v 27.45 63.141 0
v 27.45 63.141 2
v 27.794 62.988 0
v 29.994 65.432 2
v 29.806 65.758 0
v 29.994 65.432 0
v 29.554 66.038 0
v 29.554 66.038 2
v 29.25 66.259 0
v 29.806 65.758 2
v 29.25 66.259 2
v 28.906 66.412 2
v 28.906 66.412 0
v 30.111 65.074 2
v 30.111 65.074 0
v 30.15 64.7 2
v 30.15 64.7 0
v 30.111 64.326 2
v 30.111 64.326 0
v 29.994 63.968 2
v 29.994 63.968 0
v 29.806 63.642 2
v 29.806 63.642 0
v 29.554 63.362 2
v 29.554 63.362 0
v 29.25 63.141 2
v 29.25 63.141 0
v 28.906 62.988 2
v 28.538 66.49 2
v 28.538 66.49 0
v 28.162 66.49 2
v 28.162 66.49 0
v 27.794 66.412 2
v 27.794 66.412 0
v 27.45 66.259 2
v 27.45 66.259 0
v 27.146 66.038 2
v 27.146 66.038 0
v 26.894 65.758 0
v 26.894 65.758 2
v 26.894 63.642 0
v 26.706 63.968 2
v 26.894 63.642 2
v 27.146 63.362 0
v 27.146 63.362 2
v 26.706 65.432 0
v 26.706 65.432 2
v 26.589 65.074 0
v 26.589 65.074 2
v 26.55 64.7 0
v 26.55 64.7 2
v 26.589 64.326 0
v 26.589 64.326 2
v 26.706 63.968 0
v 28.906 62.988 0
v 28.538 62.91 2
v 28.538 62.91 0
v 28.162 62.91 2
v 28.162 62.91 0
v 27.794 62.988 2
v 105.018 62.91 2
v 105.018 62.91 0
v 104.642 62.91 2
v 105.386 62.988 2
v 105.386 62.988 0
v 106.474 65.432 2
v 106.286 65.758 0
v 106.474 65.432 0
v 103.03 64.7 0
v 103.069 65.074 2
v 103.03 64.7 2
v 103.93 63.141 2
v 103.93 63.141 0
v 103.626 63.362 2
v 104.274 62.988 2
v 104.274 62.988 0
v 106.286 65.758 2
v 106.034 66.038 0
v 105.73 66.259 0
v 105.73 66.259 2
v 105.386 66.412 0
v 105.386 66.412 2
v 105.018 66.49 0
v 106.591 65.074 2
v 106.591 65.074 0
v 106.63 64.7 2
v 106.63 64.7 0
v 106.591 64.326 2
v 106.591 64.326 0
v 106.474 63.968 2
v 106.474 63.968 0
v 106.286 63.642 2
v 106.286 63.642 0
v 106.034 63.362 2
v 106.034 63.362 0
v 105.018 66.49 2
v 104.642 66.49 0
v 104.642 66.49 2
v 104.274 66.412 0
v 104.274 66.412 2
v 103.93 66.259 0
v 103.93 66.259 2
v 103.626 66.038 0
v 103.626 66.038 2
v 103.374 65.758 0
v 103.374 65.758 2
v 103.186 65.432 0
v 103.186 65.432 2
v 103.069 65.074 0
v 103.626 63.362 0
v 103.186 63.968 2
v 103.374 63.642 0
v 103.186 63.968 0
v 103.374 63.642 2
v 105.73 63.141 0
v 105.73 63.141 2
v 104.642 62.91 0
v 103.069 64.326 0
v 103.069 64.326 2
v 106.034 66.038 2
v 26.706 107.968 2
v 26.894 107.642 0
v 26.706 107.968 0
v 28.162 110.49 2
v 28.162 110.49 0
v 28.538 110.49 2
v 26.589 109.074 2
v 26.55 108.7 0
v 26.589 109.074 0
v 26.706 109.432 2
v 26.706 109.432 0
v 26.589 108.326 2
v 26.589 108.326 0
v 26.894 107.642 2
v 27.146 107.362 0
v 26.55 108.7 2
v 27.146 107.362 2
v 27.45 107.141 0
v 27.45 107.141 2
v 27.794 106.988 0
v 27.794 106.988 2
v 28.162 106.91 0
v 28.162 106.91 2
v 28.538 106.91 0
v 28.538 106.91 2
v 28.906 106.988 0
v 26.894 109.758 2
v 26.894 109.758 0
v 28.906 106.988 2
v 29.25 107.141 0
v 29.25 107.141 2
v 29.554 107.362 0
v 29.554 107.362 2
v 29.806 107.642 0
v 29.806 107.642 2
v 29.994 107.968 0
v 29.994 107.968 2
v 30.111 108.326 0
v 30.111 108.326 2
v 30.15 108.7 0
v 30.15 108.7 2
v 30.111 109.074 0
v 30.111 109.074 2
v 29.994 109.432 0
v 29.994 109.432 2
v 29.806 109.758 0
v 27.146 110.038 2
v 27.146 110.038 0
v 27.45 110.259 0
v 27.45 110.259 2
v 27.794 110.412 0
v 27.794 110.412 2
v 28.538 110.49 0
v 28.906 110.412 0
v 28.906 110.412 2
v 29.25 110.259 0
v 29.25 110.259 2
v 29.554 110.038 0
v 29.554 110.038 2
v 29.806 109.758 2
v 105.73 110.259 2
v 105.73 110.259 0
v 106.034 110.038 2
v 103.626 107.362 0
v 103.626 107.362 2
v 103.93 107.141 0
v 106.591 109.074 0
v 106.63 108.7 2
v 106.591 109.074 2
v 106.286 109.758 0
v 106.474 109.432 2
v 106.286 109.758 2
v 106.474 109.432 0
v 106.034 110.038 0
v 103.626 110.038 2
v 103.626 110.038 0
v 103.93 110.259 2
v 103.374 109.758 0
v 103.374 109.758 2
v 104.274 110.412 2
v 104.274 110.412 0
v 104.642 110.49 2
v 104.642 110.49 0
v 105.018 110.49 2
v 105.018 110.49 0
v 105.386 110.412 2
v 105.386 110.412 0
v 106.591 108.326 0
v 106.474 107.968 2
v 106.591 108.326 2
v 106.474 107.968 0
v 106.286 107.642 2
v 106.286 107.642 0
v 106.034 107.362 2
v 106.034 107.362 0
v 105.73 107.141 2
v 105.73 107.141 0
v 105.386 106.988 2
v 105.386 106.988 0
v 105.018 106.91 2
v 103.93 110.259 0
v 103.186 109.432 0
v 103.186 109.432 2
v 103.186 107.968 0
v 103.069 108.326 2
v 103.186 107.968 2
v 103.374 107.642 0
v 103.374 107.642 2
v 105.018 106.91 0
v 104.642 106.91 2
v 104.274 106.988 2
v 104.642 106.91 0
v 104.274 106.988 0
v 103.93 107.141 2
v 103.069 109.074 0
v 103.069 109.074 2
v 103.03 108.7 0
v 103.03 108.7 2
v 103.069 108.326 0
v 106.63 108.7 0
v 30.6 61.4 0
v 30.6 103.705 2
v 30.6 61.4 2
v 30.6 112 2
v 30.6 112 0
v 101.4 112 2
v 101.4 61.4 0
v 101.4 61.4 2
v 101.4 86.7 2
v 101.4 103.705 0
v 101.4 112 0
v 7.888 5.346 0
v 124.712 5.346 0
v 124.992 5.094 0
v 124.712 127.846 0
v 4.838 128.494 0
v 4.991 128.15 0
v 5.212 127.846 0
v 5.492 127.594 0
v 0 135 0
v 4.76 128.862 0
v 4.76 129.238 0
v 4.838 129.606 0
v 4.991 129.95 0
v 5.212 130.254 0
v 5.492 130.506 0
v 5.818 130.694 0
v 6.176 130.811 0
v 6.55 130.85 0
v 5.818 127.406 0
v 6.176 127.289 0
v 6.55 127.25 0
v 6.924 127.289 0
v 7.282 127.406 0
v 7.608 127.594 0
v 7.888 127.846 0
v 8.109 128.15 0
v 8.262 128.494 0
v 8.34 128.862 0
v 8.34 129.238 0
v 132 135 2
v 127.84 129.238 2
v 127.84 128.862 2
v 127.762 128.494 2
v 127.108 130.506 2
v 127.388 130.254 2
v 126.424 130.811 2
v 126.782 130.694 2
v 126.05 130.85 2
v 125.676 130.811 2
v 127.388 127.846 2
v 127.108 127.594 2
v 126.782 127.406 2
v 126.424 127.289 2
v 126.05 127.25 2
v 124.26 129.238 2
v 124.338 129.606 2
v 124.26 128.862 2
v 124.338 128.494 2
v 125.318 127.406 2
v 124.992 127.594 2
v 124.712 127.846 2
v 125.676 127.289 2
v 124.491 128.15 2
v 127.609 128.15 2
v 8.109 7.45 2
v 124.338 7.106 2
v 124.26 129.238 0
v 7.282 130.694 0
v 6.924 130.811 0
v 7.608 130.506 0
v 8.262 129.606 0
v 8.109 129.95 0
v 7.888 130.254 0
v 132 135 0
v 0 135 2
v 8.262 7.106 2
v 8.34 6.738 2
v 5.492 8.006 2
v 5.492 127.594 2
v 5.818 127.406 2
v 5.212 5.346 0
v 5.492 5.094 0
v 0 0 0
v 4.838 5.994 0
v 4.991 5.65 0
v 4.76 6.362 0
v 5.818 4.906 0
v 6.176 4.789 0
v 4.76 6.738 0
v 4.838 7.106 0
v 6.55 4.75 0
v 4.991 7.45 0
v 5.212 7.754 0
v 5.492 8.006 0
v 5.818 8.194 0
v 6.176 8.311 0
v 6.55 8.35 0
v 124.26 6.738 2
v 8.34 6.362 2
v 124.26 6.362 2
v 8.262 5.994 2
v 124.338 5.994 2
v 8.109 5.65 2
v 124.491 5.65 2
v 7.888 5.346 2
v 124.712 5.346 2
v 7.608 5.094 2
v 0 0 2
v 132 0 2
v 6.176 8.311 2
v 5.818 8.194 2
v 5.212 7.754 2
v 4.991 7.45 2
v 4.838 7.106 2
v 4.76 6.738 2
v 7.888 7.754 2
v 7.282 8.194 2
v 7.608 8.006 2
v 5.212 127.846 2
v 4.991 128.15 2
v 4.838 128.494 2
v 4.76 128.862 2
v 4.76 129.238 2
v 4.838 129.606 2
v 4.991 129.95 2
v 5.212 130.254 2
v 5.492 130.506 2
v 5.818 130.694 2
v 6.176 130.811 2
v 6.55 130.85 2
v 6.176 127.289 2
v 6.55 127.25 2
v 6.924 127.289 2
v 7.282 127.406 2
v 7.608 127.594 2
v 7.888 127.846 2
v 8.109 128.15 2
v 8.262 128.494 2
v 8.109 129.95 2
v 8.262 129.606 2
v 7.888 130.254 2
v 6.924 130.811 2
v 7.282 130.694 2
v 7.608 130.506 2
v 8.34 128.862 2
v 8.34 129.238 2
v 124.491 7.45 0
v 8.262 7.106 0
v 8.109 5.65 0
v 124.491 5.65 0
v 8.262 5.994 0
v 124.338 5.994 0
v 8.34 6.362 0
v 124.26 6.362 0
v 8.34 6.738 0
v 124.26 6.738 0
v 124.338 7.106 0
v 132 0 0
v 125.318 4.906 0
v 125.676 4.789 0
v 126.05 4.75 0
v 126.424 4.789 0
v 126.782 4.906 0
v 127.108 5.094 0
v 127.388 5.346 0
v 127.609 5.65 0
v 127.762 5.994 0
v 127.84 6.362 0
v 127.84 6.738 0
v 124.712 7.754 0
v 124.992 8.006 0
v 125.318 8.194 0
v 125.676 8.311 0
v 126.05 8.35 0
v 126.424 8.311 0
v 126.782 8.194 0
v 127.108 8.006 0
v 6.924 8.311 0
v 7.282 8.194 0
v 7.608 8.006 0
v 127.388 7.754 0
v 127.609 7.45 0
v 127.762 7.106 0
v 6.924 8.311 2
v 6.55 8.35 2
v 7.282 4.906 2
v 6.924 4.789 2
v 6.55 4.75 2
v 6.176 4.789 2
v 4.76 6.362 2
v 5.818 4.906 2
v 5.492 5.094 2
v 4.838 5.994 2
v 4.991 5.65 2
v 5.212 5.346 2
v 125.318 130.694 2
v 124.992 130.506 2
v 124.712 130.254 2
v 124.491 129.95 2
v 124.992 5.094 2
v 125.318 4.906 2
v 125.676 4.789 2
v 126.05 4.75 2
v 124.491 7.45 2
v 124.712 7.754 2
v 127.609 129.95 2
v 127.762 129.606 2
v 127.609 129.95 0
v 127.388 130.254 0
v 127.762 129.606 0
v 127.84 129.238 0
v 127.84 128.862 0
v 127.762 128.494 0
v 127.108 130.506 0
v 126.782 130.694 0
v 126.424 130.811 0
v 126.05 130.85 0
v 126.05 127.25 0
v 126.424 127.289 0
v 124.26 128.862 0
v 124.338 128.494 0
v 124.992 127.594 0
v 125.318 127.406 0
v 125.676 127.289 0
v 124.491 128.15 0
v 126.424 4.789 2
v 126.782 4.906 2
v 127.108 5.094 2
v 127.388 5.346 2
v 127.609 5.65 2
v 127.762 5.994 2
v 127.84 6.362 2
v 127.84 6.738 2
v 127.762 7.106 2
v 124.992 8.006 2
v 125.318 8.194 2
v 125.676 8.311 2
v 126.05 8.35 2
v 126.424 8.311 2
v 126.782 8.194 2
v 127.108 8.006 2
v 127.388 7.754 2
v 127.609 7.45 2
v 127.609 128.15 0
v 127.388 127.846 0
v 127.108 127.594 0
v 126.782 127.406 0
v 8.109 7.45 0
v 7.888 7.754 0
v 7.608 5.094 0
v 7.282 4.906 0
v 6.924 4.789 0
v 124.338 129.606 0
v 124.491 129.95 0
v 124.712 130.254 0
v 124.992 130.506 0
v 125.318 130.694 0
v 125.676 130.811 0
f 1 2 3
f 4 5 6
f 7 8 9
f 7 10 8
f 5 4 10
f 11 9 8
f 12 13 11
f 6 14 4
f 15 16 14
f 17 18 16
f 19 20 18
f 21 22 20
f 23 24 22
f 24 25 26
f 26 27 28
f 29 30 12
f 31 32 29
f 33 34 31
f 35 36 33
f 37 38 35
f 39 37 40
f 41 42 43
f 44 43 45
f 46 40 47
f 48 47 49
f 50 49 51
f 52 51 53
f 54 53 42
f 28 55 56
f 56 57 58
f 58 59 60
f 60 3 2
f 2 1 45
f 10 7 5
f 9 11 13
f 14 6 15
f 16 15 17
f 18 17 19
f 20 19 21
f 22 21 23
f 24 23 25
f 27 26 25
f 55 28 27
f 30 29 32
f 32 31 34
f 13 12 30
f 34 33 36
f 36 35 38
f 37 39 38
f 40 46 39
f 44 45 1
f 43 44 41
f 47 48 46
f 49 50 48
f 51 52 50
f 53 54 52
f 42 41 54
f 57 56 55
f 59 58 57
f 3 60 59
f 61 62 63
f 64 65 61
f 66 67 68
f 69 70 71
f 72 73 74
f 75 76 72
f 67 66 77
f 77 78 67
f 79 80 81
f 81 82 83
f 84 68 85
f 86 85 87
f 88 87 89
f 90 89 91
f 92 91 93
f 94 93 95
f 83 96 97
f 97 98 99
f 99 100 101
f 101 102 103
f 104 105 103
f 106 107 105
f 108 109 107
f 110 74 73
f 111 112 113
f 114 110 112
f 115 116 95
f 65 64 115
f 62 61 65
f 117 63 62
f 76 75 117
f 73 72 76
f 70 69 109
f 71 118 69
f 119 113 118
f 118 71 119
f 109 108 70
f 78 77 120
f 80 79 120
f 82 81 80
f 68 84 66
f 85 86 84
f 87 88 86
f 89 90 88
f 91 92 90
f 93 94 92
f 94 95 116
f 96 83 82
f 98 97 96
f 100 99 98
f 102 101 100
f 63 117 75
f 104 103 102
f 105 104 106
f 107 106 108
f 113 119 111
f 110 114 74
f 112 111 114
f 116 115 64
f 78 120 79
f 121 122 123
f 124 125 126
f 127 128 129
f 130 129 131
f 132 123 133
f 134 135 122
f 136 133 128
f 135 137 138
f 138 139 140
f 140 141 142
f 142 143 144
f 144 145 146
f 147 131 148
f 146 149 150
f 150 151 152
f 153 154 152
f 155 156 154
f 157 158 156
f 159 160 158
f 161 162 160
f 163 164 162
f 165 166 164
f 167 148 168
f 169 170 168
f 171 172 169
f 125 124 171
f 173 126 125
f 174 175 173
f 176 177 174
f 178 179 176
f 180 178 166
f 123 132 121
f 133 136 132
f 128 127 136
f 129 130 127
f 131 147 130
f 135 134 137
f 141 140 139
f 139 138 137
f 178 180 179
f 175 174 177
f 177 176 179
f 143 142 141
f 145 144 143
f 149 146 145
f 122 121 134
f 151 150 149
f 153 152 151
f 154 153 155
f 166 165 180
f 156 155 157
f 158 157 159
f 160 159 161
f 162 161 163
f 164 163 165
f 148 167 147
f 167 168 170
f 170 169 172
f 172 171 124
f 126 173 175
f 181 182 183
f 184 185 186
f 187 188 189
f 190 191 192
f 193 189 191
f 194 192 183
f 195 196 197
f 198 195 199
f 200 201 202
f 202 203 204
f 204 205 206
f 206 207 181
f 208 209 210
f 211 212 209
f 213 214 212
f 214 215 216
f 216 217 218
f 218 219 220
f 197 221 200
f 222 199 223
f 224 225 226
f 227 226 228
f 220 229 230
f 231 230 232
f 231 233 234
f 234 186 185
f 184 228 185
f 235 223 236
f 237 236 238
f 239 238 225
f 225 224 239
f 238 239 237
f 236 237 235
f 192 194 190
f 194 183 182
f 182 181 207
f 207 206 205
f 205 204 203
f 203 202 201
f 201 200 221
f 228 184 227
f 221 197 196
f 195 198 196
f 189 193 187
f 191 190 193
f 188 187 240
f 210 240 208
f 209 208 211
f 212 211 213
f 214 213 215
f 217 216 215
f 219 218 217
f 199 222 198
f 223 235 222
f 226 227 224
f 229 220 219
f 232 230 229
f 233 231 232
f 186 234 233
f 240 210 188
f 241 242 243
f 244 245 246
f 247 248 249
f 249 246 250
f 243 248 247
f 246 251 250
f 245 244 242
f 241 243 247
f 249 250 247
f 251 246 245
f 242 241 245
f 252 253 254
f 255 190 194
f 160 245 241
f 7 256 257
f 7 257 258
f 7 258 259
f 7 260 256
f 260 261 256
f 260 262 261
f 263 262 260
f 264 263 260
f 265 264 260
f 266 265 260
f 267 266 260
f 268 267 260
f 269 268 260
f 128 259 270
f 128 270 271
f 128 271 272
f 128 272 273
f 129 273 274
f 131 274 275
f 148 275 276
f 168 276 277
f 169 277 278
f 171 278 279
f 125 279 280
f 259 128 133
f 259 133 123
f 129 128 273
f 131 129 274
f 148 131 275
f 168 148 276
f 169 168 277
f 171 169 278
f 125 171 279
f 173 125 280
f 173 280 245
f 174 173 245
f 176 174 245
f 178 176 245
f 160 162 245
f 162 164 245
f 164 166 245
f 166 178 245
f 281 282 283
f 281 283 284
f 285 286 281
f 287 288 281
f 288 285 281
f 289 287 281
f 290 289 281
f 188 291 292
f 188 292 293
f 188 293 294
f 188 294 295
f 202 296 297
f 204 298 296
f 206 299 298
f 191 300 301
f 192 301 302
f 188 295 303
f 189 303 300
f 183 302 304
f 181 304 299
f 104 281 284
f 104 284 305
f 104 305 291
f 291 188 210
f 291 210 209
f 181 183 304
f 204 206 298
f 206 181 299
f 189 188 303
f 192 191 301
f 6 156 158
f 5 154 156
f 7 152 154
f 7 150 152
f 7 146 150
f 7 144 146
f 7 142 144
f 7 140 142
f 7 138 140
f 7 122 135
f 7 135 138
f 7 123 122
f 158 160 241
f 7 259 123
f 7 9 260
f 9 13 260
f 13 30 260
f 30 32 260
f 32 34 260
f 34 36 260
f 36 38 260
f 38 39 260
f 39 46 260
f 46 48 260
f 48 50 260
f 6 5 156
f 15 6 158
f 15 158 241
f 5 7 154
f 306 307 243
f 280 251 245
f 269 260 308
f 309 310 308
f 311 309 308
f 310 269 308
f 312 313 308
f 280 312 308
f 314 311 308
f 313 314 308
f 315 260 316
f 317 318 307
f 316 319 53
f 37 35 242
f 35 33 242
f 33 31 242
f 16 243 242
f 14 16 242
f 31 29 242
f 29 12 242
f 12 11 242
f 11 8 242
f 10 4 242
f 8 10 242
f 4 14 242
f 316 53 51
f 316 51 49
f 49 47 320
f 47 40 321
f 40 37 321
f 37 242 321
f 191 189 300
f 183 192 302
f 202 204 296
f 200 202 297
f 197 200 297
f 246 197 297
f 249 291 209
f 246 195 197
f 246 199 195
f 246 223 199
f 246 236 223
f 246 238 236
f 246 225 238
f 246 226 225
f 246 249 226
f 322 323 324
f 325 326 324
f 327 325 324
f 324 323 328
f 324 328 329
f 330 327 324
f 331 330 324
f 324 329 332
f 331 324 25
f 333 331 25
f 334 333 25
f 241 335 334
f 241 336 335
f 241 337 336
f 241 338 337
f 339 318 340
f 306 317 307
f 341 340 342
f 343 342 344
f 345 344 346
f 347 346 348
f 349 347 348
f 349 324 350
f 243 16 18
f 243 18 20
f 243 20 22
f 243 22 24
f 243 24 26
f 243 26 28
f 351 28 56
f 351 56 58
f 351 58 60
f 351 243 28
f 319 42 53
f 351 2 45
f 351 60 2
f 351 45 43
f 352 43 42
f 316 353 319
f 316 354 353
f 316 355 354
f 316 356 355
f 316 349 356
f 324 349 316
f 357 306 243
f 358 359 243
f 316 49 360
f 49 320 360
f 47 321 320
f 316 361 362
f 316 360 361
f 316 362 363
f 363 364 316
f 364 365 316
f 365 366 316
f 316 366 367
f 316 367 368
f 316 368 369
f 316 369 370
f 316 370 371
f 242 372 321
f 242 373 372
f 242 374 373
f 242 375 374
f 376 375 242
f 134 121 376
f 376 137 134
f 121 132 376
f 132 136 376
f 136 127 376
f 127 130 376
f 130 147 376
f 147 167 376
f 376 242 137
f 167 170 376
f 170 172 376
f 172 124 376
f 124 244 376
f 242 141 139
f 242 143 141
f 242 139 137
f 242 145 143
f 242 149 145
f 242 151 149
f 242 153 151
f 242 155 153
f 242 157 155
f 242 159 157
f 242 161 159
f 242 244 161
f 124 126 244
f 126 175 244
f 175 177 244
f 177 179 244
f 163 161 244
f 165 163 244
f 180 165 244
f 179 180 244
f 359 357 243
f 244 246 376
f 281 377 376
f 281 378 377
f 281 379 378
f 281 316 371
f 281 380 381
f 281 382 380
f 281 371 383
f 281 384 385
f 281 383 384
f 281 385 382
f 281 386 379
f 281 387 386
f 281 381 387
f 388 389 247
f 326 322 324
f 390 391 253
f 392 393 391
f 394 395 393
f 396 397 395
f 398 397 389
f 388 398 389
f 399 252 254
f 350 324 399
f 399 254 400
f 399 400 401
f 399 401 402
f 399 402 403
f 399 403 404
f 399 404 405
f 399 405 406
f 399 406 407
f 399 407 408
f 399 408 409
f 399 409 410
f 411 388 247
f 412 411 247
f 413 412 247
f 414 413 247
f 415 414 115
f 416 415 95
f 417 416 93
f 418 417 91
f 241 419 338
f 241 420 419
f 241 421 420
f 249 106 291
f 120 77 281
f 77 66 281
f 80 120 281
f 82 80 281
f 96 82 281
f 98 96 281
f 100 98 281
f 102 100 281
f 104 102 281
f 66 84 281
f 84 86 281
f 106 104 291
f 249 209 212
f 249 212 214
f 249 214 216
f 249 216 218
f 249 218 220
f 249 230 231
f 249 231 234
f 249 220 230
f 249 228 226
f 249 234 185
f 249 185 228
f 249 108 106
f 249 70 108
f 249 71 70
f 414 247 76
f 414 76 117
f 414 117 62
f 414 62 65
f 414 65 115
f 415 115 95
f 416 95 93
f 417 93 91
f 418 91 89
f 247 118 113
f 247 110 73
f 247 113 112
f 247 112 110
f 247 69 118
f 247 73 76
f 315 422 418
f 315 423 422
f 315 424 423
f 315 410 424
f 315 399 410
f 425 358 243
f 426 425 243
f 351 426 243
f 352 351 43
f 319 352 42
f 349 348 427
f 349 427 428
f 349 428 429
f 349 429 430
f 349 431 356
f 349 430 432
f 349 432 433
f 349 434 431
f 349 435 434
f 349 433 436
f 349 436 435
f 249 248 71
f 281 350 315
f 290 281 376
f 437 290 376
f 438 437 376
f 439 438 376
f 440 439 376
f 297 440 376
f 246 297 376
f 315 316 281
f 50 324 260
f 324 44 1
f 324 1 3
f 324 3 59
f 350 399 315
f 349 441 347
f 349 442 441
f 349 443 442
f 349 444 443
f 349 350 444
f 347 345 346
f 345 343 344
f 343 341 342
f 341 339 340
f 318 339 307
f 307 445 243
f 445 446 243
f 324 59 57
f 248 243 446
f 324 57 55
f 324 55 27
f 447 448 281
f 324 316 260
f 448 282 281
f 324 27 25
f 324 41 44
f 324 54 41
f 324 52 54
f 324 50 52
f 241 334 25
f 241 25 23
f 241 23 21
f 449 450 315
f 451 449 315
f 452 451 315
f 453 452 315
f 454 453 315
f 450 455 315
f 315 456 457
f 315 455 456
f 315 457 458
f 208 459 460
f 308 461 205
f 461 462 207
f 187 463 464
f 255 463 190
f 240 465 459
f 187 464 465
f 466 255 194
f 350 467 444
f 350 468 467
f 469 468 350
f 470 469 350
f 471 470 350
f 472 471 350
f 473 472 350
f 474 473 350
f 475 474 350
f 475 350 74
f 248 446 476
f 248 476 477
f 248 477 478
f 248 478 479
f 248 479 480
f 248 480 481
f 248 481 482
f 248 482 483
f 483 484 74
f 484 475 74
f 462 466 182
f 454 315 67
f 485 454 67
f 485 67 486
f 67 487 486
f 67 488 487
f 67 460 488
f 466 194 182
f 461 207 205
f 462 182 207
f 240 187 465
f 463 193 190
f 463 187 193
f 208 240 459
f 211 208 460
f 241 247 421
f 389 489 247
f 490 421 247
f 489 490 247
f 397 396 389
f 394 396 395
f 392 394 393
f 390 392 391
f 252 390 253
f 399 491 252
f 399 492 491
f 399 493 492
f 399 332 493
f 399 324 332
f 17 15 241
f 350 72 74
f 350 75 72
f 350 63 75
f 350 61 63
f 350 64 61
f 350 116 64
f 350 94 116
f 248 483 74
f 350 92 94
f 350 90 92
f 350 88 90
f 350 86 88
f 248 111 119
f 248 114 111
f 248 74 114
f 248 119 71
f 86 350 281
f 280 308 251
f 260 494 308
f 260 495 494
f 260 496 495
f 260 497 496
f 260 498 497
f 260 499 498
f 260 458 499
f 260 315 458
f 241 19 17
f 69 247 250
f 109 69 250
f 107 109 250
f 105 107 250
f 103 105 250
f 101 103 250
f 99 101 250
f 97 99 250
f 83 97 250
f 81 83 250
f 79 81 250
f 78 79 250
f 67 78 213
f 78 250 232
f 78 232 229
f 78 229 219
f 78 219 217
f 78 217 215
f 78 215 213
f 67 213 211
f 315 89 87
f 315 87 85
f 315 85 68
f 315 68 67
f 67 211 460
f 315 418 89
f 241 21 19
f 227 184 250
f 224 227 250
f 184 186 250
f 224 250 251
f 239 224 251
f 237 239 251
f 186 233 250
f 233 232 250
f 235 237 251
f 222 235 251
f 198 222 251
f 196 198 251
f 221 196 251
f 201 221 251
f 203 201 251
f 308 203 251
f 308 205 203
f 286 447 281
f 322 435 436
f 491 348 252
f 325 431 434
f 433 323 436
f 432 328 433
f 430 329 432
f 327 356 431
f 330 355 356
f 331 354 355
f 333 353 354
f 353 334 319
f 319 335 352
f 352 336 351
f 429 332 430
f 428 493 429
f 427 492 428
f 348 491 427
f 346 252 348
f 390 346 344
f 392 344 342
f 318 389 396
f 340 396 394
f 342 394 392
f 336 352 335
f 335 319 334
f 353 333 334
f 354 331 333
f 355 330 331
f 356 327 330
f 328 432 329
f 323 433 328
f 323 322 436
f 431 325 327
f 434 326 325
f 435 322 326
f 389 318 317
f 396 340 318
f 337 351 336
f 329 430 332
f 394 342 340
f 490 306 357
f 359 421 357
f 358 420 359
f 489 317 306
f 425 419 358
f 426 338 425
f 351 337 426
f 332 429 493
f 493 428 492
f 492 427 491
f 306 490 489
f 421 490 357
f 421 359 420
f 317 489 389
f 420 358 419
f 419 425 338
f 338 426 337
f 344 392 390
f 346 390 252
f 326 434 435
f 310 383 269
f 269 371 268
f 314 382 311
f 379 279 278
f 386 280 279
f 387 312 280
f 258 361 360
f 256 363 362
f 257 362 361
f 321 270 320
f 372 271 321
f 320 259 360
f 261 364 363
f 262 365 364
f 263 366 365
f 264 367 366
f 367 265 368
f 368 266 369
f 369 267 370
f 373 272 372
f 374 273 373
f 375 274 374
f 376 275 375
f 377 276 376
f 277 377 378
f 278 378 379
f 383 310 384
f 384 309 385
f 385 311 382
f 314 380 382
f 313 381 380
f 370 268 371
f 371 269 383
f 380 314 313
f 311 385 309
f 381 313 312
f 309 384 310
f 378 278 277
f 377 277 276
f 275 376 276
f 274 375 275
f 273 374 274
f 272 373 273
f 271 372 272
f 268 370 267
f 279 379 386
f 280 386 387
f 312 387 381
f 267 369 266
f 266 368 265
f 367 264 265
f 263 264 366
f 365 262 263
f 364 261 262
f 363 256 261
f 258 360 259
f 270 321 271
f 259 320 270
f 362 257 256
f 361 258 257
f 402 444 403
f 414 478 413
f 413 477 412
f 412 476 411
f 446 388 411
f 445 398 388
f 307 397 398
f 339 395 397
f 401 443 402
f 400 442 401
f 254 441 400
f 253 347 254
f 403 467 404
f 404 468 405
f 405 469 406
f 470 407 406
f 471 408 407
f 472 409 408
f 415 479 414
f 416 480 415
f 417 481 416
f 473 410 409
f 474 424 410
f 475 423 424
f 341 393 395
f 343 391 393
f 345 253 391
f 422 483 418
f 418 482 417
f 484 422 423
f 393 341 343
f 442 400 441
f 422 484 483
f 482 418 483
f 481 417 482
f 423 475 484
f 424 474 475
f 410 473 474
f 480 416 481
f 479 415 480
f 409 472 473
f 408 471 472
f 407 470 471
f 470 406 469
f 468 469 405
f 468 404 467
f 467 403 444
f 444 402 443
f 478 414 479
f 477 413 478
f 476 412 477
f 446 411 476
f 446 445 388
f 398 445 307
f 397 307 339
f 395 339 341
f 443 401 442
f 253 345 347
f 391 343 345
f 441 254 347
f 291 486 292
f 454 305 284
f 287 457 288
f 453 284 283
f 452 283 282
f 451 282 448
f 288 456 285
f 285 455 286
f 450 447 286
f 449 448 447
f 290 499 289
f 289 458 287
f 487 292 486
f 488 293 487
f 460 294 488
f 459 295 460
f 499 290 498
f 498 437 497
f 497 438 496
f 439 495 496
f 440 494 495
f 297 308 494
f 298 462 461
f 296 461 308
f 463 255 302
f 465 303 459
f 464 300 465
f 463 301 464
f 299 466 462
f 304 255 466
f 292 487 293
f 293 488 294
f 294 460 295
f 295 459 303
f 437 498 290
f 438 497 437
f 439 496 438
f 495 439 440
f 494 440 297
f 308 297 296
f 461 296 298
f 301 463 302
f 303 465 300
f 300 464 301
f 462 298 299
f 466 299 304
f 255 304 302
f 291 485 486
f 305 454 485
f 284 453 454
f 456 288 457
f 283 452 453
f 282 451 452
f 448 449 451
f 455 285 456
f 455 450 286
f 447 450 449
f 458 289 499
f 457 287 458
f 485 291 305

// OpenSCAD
wall_thickness = 2;
case_depth = 135;
case_width = 140-8;
case_height = 60;



// All holes/openings should be offset from hole 1, at 0,0
lcd_hole_1_x = 0;
lcd_hole_1_y = 0;

lcd_hole_2_x = 86-3-6.92+0.4; // Moving 0.4 right
lcd_hole_2_y = lcd_hole_1_y;

lcd_hole_3_x = lcd_hole_1_x;
lcd_hole_3_y = 50-3-3;

lcd_hole_4_x = lcd_hole_2_x;
lcd_hole_4_y = lcd_hole_3_y;

lcd_hole_radius = 1.8;

lcd_opening_x = 2.25;
lcd_opening_y = -3.3;
lcd_opening_x_length = 70.2 + 0.6;  // Moving 0.6 out
lcd_opening_y_length = 50.6;

offset_visual_x = -lcd_opening_x-lcd_opening_x_length/2+case_width/2;
offset_visual_y = case_depth/3*2-lcd_opening_y_length/2;


module lcd_holes() {
    translate([lcd_hole_1_x, lcd_hole_1_y, 0]) cylinder(h=wall_thickness*3, r=lcd_hole_radius, center=true, $fn=30);
    translate([lcd_hole_2_x, lcd_hole_2_y, 0]) cylinder(h=wall_thickness*3, r=lcd_hole_radius, center=true, $fn=30);
    translate([lcd_hole_3_x, lcd_hole_3_y, 0]) cylinder(h=wall_thickness*3, r=lcd_hole_radius, center=true, $fn=30);
    translate([lcd_hole_4_x, lcd_hole_4_y, 0]) cylinder(h=wall_thickness*3, r=lcd_hole_radius, center=true, $fn=30);
    translate([lcd_opening_x, lcd_opening_y, -1]) cube([lcd_opening_x_length, lcd_opening_y_length, wall_thickness*3]);
}


module captive_square_nut_post(post_top_at, attached_wall_thickness, rotation=0, holes_only=0) {
    nut_width = 5.5;
    nut_height = 2.5;

    nut_post_width = nut_width + 3.6;

    nut_hole_height = nut_height + 0.8;
    nut_hole_width = nut_width + 1;
    nut_hole_depth = (nut_post_width-nut_width)/2 + nut_width + 0.6;

    nut_hole_from_top_of_post = 2;

    screw_radius = 1.8;
    captive_screw_length = 12;


    nut_post_height = nut_hole_from_top_of_post*2 + nut_hole_height + (nut_post_width) + max(0, captive_screw_length - (nut_hole_from_top_of_post*2 + nut_hole_height ));  // This needs to change


    module make_lid_screw_hole() {
        // The (lid) screw hole
        translate([nut_post_width/2,nut_post_width/2,7]) cylinder(r=screw_radius, h=nut_post_height+2, $fn=30);
    }


    module make_post(holes_only=0) {
        // This makes the rotateable post/holes
        if(holes_only == 0) {        
            difference() {
                // The post itself
                cube([nut_post_width, nut_post_width, nut_post_height]);
                // The nut post holes (nut hole, screw hole)
                make_lid_screw_hole();
                // The cut to make the post 45 degrees
                rotate([-45,0,0]) translate([-0.05,-0.05,0]) cube([nut_post_width+.1, nut_post_width+.1, nut_post_height]);
            }
        } else {
            // JUST The nut post holes (nut hole, screw hole), but on the same orientation as the post
            make_lid_screw_hole();        
        }    
    }




    translate([nut_post_width/2, nut_post_width/2, (post_top_at-nut_post_height)]) rotate([0, 0, rotation]) translate([-nut_post_width/2, -nut_post_width/2, 0]) make_post(holes_only);
}




top_of_post = 0;


difference() {
    cube([case_width, case_depth, wall_thickness]);


    // Front left nut hole
    translate([wall_thickness, wall_thickness+0, 0]) captive_square_nut_post(top_of_post, wall_thickness, rotation=270, holes_only=1);
    // Back left nut hole    
    translate([wall_thickness, case_depth-wall_thickness-8.5, 0]) captive_square_nut_post(top_of_post, wall_thickness, rotation=270, holes_only=1);


    // Front right nut hole
    translate([case_width-wall_thickness-8.5, wall_thickness+0, 0]) captive_square_nut_post(top_of_post, wall_thickness, rotation=90, holes_only=1);
    // Back right nut hole    
    translate([case_width-wall_thickness-8.5, case_depth-wall_thickness-8.5, 0]) captive_square_nut_post(top_of_post, wall_thickness, rotation=90, holes_only=1);
    
    translate([offset_visual_x, offset_visual_y, 0]) lcd_holes();
}

// Fermentrack Logo
//translate([case_width/2-23,8,wall_thickness]) linear_extrude(height=0.6) import("ft_logo_white_bkg.svg", dpi=500);
